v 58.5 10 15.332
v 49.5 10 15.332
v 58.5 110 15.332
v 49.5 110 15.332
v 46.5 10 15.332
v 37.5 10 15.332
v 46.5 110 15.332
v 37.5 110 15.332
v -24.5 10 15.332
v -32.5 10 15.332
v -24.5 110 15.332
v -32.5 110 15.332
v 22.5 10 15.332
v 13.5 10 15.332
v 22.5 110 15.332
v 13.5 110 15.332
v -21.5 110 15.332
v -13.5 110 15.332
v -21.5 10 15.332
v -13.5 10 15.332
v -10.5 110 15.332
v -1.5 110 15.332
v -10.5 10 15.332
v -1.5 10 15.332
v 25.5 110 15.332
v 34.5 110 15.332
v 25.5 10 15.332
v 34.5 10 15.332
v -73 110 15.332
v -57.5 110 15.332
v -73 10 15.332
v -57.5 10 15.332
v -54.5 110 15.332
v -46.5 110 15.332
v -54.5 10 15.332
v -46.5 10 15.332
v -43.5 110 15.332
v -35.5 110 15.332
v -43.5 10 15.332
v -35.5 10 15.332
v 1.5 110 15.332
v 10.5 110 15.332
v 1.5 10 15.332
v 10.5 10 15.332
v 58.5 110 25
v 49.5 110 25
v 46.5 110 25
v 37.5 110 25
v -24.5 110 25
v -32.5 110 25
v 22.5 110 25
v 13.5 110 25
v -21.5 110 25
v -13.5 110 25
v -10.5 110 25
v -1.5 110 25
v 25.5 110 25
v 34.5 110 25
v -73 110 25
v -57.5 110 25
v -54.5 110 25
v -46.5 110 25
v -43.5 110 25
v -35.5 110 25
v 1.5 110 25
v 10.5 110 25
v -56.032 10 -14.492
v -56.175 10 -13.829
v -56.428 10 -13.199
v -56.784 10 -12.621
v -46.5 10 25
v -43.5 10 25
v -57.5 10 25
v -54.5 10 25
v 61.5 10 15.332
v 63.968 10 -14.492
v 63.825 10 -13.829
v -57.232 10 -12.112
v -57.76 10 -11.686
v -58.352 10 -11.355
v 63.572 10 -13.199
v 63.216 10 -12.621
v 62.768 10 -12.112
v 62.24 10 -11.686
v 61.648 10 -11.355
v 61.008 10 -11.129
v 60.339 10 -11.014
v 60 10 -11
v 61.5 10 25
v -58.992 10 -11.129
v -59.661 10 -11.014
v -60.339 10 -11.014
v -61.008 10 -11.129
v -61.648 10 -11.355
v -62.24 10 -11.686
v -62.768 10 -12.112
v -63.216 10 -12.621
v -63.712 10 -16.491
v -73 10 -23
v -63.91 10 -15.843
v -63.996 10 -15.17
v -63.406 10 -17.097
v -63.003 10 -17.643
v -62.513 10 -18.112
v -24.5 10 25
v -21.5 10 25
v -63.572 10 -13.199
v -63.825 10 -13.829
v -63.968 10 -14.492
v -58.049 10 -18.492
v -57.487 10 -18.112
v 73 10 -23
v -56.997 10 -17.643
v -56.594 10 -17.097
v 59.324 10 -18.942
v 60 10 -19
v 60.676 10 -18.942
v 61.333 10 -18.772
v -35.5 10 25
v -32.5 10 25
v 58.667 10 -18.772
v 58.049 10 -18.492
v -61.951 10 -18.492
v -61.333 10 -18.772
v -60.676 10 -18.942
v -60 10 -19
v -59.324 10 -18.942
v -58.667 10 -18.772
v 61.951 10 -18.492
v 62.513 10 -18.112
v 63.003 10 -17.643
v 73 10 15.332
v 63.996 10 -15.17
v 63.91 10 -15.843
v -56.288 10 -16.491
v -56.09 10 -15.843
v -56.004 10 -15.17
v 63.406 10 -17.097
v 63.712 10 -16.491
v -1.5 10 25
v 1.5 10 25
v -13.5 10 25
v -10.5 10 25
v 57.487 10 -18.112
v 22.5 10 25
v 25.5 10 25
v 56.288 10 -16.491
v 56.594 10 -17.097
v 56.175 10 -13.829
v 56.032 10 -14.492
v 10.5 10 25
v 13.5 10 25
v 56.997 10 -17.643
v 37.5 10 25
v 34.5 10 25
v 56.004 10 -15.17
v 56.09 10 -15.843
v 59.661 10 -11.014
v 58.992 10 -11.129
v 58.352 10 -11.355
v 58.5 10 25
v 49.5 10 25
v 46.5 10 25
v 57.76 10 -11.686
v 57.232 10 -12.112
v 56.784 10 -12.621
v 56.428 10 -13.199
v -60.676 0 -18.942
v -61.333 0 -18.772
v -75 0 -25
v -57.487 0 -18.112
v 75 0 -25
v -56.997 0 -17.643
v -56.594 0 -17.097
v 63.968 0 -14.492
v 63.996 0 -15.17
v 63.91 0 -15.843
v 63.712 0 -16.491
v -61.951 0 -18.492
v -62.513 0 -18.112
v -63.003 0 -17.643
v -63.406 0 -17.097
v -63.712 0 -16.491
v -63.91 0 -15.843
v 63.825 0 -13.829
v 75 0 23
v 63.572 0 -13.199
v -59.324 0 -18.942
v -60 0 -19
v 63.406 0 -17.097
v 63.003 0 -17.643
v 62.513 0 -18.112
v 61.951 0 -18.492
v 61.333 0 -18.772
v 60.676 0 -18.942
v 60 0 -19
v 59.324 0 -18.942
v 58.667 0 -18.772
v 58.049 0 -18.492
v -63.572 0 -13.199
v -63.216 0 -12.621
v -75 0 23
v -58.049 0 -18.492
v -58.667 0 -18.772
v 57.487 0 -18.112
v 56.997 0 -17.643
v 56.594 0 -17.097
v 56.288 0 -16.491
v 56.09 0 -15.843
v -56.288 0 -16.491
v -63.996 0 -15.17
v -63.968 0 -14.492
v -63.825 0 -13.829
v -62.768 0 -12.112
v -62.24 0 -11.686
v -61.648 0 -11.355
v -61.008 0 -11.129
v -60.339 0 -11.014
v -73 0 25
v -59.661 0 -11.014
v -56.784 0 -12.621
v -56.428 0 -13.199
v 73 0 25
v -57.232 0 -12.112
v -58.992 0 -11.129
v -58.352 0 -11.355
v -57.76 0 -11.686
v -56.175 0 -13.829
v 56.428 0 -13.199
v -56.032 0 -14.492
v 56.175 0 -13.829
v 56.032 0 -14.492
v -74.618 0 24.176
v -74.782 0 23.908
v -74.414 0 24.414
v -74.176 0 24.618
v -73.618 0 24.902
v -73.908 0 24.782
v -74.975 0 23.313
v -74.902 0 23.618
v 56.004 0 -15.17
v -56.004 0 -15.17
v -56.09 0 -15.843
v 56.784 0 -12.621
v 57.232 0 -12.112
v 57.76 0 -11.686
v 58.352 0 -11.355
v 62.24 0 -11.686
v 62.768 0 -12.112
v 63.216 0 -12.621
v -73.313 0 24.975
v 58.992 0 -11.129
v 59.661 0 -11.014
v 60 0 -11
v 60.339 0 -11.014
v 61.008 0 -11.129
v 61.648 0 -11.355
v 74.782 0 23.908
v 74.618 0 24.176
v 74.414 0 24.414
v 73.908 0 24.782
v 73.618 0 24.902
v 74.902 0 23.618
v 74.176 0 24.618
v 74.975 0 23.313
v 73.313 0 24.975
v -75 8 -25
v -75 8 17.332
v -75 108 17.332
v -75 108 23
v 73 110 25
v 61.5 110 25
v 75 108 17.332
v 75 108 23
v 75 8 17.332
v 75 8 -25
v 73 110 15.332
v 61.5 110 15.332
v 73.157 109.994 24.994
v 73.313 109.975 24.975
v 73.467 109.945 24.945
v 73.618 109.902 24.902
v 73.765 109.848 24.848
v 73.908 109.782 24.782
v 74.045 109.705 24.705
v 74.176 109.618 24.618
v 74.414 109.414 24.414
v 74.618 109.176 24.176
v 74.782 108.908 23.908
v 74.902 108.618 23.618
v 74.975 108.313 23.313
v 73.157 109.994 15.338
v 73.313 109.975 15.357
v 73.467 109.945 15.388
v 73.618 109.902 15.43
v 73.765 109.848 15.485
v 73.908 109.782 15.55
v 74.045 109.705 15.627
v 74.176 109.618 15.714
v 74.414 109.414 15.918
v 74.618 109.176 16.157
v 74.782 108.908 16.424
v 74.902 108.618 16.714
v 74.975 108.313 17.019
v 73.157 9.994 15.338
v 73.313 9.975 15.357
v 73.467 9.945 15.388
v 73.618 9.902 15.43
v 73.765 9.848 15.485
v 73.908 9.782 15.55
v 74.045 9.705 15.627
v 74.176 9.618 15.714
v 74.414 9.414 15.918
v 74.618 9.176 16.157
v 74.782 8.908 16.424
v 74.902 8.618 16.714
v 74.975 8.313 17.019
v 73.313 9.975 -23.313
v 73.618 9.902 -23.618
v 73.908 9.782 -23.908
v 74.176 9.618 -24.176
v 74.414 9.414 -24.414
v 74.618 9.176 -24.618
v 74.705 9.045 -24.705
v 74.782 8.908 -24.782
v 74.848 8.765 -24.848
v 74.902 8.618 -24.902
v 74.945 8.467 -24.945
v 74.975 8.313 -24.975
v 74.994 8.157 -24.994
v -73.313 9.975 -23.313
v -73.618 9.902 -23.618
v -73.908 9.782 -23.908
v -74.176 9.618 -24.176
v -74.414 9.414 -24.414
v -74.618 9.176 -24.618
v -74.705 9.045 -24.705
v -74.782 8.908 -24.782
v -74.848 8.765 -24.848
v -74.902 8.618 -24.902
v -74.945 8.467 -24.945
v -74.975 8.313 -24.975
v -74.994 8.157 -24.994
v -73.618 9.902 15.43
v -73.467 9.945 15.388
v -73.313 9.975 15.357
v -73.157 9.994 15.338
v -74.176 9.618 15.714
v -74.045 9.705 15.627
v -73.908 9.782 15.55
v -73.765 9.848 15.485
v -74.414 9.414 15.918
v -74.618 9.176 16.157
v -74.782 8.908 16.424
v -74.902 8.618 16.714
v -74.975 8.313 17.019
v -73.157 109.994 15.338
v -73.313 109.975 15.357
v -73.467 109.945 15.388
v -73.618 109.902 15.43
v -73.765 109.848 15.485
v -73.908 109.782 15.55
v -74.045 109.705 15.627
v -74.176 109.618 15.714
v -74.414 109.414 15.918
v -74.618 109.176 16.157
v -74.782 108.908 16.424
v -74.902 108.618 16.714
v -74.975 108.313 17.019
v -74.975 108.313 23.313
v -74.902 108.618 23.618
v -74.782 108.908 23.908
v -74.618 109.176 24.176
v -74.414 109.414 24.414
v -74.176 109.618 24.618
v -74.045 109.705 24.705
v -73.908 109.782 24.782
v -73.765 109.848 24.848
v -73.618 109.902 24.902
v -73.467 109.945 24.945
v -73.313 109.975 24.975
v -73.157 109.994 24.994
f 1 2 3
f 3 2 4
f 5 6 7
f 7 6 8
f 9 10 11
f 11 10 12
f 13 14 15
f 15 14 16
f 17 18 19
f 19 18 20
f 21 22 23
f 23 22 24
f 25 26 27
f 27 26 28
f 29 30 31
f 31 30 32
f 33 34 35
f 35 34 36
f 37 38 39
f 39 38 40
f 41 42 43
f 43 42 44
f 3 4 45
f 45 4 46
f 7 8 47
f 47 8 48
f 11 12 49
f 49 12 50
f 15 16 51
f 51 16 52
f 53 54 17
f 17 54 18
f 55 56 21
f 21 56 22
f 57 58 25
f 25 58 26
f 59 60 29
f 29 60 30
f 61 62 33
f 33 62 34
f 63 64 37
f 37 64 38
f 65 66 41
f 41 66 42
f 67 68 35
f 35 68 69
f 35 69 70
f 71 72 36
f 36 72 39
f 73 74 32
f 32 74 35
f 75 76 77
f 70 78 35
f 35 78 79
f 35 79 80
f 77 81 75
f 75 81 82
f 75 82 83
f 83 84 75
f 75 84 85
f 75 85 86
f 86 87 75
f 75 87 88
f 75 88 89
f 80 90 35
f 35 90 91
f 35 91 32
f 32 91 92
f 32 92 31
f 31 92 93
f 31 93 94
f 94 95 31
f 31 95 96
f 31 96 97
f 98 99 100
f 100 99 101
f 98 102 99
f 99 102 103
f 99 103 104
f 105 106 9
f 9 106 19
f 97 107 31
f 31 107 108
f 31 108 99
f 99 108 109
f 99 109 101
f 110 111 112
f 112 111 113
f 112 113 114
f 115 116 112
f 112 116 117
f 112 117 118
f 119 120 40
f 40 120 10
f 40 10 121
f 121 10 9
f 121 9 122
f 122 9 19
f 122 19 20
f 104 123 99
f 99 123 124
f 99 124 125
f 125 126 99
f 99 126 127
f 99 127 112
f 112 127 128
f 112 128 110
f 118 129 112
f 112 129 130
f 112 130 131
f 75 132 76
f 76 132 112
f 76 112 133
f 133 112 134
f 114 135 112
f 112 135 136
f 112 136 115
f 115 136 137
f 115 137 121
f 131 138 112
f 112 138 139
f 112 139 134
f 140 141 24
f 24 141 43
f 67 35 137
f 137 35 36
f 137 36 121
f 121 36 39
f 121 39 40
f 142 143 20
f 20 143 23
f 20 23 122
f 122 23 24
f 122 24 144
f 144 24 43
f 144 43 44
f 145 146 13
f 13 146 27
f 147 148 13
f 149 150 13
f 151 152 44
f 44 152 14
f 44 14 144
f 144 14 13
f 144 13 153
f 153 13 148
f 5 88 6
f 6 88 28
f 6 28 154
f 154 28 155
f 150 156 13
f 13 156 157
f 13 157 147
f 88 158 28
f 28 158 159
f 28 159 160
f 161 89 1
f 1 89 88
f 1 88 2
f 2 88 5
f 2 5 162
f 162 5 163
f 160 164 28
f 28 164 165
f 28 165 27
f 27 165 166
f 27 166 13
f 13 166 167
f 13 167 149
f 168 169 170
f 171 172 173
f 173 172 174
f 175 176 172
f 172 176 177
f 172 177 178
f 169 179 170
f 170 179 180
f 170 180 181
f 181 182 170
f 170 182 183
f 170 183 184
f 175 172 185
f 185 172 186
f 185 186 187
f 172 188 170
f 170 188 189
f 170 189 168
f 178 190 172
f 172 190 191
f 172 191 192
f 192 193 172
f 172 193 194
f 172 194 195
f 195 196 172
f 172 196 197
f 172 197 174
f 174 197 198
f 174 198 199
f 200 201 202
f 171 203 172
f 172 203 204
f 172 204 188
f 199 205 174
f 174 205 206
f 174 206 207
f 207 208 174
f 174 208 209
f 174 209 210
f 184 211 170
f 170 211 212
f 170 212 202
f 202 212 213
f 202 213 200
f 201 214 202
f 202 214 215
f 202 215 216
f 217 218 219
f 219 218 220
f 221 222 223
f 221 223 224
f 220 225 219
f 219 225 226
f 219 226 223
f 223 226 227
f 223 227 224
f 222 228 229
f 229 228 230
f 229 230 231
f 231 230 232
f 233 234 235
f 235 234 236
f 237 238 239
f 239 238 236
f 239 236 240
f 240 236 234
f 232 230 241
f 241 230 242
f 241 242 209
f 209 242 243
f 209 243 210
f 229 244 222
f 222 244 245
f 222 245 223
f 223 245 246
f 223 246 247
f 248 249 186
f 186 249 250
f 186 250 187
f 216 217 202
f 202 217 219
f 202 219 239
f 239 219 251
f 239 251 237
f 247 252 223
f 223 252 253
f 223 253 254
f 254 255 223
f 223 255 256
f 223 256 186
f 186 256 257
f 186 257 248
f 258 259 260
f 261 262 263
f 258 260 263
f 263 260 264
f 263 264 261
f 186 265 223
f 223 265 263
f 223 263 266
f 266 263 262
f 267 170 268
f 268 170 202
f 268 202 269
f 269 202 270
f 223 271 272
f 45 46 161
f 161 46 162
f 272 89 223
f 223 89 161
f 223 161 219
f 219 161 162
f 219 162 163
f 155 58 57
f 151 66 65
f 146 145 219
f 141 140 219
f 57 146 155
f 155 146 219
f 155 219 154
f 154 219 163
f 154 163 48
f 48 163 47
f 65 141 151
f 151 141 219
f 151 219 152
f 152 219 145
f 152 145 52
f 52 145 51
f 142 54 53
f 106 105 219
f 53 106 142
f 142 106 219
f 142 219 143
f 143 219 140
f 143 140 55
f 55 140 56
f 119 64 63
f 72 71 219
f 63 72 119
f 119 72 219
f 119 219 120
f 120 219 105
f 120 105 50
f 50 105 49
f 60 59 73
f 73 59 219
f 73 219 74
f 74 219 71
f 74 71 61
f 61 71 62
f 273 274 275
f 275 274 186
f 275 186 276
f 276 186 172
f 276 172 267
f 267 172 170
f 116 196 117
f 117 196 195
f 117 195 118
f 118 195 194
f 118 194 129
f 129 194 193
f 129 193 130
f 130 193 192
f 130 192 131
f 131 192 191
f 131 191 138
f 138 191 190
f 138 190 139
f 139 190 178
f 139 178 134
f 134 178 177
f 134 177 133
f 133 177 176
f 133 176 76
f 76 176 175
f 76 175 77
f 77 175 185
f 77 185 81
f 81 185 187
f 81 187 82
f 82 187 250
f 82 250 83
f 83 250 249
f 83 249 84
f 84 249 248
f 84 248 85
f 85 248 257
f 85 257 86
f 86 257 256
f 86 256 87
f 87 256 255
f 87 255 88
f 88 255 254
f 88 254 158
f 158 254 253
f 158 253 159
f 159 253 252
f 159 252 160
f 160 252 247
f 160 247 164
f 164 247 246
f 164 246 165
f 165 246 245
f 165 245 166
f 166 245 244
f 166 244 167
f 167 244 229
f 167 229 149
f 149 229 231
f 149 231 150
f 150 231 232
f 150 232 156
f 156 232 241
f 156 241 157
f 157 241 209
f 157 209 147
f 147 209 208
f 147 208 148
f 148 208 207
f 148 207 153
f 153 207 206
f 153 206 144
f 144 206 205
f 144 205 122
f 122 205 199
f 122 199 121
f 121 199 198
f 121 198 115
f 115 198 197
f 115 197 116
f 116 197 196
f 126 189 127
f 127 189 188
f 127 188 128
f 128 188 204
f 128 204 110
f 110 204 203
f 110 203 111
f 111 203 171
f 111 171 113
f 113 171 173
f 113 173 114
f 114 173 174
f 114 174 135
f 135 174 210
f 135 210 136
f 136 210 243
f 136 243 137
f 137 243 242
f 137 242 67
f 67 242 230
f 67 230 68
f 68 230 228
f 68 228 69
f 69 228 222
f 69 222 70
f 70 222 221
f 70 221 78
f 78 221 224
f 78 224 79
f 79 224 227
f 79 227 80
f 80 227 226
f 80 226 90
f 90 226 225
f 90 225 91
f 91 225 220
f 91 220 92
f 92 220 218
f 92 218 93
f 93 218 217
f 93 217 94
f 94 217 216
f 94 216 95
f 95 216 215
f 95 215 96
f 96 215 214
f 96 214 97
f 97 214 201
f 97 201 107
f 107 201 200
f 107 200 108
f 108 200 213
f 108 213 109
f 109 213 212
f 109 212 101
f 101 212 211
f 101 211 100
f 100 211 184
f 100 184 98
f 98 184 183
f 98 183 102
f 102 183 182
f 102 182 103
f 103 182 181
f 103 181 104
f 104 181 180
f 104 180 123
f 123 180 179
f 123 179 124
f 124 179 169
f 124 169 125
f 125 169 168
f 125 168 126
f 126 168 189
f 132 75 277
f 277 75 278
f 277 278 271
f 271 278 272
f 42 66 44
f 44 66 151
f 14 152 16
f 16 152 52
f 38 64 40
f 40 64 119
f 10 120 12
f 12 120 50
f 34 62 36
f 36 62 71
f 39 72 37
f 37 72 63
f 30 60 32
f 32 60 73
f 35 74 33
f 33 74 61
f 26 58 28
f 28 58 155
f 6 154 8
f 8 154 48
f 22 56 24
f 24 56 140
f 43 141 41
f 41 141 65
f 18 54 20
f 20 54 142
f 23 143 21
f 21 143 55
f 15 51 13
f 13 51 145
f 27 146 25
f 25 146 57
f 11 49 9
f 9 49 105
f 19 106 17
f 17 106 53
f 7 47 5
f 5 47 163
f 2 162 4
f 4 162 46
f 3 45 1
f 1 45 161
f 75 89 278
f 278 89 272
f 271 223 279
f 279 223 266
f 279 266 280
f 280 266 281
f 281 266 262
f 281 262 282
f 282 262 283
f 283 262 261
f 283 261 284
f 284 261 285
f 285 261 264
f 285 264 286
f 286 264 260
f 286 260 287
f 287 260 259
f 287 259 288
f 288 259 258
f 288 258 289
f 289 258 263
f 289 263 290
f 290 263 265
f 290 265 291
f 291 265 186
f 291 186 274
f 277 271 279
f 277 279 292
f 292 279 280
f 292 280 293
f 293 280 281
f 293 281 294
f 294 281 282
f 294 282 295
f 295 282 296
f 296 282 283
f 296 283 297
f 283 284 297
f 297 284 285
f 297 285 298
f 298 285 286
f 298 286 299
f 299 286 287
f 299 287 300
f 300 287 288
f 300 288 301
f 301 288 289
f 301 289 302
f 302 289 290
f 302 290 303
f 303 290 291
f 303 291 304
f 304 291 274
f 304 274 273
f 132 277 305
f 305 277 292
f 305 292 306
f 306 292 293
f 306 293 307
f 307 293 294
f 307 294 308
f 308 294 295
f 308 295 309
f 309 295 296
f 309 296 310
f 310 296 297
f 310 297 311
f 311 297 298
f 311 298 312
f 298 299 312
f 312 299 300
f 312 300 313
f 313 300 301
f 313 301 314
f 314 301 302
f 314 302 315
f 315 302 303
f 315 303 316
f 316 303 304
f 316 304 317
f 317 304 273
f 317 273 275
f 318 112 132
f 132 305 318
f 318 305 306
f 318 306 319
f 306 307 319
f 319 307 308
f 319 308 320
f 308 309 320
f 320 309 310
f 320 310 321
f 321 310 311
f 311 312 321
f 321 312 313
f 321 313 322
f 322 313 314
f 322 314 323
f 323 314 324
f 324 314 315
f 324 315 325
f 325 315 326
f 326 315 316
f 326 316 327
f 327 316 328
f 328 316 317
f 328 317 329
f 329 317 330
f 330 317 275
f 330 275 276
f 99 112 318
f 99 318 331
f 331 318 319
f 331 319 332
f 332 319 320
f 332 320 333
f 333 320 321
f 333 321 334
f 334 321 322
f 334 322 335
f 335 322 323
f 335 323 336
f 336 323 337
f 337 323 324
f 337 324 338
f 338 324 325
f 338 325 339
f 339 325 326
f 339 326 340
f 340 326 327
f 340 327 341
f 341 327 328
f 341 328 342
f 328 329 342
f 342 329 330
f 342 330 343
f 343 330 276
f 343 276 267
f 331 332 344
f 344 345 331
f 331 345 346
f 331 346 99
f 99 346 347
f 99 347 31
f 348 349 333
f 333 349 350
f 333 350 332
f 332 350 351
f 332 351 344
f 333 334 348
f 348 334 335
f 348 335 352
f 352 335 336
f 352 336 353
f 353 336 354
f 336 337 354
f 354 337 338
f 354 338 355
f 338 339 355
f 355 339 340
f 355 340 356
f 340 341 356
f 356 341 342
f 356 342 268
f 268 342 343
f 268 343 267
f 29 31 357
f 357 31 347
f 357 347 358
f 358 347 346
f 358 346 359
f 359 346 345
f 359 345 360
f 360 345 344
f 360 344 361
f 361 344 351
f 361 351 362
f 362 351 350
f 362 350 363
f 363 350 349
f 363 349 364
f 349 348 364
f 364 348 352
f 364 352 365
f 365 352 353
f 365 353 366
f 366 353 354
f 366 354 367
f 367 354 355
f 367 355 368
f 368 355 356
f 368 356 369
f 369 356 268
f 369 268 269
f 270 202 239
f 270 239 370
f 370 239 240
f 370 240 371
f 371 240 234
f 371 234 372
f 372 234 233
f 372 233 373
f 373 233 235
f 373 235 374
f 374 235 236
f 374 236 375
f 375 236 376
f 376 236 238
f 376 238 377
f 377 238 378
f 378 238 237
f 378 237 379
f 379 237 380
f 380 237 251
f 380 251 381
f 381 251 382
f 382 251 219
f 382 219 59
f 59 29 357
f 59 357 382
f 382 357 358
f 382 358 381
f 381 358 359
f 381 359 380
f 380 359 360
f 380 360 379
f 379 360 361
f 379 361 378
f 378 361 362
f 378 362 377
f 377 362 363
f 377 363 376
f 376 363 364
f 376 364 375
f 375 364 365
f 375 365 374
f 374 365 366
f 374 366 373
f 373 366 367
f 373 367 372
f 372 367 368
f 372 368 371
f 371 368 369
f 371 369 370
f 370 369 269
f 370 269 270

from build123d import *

# Parameters (mm, degrees)
SKETCH1_W           = 150
SKETCH1_H           = 50
SKETCH1_R           = 4
BOSS_EXTRUDE1_DEPTH = 10
SKETCH2_W           = 150
SKETCH2_H           = 9.667678079
BOSS_EXTRUDE2_DEPTH = 100
SKETCH3_W           = 3
SKETCH3_H           = 100
CUT_EXTRUDE1_DEPTH  = 100
FILLET1_R           = 2


with BuildPart() as part:
    # Sketch1 → Boss-Extrude1 (new body)
    with BuildSketch(Plane(origin=(0, 0, 0), x_dir=(1, 0, 0), z_dir=(0, 1, 0))):
        Rectangle(SKETCH1_W, SKETCH1_H)
        with Locations((60, 15)):
            Circle(SKETCH1_R, mode=Mode.SUBTRACT)
        with Locations((-60, 15)):
            Circle(SKETCH1_R, mode=Mode.SUBTRACT)
    extrude(amount=BOSS_EXTRUDE1_DEPTH)

    # Sketch2 → Boss-Extrude2 (add)
    with BuildSketch(Plane(origin=(0, 10, 0), x_dir=(1, 0, 0), z_dir=(0, 1, 0))):
        with Locations((0, -20.166160961)):
            Rectangle(SKETCH2_W, SKETCH2_H)
    extrude(amount=BOSS_EXTRUDE2_DEPTH)

    # Sketch3 → Cut-Extrude1 (cut)
    with BuildSketch(Plane(origin=(0, 0, 15.332321921), x_dir=(-1, 0, 0), z_dir=(0, 0, -1))):
        with Locations((-12, 60)):
            Rectangle(SKETCH3_W, SKETCH3_H)
        with Locations((0, 60)):
            Rectangle(SKETCH3_W, SKETCH3_H)
        with Locations((12, 60)):
            Rectangle(SKETCH3_W, SKETCH3_H)
        with Locations((23, 60)):
            Rectangle(SKETCH3_W, SKETCH3_H)
        with Locations((34, 60)):
            Rectangle(SKETCH3_W, SKETCH3_H)
        with Locations((45, 60)):
            Rectangle(SKETCH3_W, SKETCH3_H)
        with Locations((56, 60)):
            Rectangle(SKETCH3_W, SKETCH3_H)
        with Locations((-24, 60)):
            Rectangle(SKETCH3_W, SKETCH3_H)
        with Locations((-36, 60)):
            Rectangle(SKETCH3_W, SKETCH3_H)
        with Locations((-48, 60)):
            Rectangle(SKETCH3_W, SKETCH3_H)
        with Locations((-60, 60)):
            Rectangle(SKETCH3_W, SKETCH3_H)
    extrude(amount=-CUT_EXTRUDE1_DEPTH, mode=Mode.SUBTRACT)

    # Fillet1
    fillet1_edges = [part.edges().sort_by_distance(p)[0] for p in [
        (0, 10, -25),
        (75, 10, -4.83383904),
        (-75, 60, 15.332321921),
        (75, 60, 15.332321921),
        (-75, 110, 20.16616096),
        (75, 110, 20.16616096),
        (-75, 10, -4.83383904),
        (75, 55, 25),
        (-75, 55, 25),
    ]]
    fillet(fillet1_edges, radius=FILLET1_R)


solid = part.part
